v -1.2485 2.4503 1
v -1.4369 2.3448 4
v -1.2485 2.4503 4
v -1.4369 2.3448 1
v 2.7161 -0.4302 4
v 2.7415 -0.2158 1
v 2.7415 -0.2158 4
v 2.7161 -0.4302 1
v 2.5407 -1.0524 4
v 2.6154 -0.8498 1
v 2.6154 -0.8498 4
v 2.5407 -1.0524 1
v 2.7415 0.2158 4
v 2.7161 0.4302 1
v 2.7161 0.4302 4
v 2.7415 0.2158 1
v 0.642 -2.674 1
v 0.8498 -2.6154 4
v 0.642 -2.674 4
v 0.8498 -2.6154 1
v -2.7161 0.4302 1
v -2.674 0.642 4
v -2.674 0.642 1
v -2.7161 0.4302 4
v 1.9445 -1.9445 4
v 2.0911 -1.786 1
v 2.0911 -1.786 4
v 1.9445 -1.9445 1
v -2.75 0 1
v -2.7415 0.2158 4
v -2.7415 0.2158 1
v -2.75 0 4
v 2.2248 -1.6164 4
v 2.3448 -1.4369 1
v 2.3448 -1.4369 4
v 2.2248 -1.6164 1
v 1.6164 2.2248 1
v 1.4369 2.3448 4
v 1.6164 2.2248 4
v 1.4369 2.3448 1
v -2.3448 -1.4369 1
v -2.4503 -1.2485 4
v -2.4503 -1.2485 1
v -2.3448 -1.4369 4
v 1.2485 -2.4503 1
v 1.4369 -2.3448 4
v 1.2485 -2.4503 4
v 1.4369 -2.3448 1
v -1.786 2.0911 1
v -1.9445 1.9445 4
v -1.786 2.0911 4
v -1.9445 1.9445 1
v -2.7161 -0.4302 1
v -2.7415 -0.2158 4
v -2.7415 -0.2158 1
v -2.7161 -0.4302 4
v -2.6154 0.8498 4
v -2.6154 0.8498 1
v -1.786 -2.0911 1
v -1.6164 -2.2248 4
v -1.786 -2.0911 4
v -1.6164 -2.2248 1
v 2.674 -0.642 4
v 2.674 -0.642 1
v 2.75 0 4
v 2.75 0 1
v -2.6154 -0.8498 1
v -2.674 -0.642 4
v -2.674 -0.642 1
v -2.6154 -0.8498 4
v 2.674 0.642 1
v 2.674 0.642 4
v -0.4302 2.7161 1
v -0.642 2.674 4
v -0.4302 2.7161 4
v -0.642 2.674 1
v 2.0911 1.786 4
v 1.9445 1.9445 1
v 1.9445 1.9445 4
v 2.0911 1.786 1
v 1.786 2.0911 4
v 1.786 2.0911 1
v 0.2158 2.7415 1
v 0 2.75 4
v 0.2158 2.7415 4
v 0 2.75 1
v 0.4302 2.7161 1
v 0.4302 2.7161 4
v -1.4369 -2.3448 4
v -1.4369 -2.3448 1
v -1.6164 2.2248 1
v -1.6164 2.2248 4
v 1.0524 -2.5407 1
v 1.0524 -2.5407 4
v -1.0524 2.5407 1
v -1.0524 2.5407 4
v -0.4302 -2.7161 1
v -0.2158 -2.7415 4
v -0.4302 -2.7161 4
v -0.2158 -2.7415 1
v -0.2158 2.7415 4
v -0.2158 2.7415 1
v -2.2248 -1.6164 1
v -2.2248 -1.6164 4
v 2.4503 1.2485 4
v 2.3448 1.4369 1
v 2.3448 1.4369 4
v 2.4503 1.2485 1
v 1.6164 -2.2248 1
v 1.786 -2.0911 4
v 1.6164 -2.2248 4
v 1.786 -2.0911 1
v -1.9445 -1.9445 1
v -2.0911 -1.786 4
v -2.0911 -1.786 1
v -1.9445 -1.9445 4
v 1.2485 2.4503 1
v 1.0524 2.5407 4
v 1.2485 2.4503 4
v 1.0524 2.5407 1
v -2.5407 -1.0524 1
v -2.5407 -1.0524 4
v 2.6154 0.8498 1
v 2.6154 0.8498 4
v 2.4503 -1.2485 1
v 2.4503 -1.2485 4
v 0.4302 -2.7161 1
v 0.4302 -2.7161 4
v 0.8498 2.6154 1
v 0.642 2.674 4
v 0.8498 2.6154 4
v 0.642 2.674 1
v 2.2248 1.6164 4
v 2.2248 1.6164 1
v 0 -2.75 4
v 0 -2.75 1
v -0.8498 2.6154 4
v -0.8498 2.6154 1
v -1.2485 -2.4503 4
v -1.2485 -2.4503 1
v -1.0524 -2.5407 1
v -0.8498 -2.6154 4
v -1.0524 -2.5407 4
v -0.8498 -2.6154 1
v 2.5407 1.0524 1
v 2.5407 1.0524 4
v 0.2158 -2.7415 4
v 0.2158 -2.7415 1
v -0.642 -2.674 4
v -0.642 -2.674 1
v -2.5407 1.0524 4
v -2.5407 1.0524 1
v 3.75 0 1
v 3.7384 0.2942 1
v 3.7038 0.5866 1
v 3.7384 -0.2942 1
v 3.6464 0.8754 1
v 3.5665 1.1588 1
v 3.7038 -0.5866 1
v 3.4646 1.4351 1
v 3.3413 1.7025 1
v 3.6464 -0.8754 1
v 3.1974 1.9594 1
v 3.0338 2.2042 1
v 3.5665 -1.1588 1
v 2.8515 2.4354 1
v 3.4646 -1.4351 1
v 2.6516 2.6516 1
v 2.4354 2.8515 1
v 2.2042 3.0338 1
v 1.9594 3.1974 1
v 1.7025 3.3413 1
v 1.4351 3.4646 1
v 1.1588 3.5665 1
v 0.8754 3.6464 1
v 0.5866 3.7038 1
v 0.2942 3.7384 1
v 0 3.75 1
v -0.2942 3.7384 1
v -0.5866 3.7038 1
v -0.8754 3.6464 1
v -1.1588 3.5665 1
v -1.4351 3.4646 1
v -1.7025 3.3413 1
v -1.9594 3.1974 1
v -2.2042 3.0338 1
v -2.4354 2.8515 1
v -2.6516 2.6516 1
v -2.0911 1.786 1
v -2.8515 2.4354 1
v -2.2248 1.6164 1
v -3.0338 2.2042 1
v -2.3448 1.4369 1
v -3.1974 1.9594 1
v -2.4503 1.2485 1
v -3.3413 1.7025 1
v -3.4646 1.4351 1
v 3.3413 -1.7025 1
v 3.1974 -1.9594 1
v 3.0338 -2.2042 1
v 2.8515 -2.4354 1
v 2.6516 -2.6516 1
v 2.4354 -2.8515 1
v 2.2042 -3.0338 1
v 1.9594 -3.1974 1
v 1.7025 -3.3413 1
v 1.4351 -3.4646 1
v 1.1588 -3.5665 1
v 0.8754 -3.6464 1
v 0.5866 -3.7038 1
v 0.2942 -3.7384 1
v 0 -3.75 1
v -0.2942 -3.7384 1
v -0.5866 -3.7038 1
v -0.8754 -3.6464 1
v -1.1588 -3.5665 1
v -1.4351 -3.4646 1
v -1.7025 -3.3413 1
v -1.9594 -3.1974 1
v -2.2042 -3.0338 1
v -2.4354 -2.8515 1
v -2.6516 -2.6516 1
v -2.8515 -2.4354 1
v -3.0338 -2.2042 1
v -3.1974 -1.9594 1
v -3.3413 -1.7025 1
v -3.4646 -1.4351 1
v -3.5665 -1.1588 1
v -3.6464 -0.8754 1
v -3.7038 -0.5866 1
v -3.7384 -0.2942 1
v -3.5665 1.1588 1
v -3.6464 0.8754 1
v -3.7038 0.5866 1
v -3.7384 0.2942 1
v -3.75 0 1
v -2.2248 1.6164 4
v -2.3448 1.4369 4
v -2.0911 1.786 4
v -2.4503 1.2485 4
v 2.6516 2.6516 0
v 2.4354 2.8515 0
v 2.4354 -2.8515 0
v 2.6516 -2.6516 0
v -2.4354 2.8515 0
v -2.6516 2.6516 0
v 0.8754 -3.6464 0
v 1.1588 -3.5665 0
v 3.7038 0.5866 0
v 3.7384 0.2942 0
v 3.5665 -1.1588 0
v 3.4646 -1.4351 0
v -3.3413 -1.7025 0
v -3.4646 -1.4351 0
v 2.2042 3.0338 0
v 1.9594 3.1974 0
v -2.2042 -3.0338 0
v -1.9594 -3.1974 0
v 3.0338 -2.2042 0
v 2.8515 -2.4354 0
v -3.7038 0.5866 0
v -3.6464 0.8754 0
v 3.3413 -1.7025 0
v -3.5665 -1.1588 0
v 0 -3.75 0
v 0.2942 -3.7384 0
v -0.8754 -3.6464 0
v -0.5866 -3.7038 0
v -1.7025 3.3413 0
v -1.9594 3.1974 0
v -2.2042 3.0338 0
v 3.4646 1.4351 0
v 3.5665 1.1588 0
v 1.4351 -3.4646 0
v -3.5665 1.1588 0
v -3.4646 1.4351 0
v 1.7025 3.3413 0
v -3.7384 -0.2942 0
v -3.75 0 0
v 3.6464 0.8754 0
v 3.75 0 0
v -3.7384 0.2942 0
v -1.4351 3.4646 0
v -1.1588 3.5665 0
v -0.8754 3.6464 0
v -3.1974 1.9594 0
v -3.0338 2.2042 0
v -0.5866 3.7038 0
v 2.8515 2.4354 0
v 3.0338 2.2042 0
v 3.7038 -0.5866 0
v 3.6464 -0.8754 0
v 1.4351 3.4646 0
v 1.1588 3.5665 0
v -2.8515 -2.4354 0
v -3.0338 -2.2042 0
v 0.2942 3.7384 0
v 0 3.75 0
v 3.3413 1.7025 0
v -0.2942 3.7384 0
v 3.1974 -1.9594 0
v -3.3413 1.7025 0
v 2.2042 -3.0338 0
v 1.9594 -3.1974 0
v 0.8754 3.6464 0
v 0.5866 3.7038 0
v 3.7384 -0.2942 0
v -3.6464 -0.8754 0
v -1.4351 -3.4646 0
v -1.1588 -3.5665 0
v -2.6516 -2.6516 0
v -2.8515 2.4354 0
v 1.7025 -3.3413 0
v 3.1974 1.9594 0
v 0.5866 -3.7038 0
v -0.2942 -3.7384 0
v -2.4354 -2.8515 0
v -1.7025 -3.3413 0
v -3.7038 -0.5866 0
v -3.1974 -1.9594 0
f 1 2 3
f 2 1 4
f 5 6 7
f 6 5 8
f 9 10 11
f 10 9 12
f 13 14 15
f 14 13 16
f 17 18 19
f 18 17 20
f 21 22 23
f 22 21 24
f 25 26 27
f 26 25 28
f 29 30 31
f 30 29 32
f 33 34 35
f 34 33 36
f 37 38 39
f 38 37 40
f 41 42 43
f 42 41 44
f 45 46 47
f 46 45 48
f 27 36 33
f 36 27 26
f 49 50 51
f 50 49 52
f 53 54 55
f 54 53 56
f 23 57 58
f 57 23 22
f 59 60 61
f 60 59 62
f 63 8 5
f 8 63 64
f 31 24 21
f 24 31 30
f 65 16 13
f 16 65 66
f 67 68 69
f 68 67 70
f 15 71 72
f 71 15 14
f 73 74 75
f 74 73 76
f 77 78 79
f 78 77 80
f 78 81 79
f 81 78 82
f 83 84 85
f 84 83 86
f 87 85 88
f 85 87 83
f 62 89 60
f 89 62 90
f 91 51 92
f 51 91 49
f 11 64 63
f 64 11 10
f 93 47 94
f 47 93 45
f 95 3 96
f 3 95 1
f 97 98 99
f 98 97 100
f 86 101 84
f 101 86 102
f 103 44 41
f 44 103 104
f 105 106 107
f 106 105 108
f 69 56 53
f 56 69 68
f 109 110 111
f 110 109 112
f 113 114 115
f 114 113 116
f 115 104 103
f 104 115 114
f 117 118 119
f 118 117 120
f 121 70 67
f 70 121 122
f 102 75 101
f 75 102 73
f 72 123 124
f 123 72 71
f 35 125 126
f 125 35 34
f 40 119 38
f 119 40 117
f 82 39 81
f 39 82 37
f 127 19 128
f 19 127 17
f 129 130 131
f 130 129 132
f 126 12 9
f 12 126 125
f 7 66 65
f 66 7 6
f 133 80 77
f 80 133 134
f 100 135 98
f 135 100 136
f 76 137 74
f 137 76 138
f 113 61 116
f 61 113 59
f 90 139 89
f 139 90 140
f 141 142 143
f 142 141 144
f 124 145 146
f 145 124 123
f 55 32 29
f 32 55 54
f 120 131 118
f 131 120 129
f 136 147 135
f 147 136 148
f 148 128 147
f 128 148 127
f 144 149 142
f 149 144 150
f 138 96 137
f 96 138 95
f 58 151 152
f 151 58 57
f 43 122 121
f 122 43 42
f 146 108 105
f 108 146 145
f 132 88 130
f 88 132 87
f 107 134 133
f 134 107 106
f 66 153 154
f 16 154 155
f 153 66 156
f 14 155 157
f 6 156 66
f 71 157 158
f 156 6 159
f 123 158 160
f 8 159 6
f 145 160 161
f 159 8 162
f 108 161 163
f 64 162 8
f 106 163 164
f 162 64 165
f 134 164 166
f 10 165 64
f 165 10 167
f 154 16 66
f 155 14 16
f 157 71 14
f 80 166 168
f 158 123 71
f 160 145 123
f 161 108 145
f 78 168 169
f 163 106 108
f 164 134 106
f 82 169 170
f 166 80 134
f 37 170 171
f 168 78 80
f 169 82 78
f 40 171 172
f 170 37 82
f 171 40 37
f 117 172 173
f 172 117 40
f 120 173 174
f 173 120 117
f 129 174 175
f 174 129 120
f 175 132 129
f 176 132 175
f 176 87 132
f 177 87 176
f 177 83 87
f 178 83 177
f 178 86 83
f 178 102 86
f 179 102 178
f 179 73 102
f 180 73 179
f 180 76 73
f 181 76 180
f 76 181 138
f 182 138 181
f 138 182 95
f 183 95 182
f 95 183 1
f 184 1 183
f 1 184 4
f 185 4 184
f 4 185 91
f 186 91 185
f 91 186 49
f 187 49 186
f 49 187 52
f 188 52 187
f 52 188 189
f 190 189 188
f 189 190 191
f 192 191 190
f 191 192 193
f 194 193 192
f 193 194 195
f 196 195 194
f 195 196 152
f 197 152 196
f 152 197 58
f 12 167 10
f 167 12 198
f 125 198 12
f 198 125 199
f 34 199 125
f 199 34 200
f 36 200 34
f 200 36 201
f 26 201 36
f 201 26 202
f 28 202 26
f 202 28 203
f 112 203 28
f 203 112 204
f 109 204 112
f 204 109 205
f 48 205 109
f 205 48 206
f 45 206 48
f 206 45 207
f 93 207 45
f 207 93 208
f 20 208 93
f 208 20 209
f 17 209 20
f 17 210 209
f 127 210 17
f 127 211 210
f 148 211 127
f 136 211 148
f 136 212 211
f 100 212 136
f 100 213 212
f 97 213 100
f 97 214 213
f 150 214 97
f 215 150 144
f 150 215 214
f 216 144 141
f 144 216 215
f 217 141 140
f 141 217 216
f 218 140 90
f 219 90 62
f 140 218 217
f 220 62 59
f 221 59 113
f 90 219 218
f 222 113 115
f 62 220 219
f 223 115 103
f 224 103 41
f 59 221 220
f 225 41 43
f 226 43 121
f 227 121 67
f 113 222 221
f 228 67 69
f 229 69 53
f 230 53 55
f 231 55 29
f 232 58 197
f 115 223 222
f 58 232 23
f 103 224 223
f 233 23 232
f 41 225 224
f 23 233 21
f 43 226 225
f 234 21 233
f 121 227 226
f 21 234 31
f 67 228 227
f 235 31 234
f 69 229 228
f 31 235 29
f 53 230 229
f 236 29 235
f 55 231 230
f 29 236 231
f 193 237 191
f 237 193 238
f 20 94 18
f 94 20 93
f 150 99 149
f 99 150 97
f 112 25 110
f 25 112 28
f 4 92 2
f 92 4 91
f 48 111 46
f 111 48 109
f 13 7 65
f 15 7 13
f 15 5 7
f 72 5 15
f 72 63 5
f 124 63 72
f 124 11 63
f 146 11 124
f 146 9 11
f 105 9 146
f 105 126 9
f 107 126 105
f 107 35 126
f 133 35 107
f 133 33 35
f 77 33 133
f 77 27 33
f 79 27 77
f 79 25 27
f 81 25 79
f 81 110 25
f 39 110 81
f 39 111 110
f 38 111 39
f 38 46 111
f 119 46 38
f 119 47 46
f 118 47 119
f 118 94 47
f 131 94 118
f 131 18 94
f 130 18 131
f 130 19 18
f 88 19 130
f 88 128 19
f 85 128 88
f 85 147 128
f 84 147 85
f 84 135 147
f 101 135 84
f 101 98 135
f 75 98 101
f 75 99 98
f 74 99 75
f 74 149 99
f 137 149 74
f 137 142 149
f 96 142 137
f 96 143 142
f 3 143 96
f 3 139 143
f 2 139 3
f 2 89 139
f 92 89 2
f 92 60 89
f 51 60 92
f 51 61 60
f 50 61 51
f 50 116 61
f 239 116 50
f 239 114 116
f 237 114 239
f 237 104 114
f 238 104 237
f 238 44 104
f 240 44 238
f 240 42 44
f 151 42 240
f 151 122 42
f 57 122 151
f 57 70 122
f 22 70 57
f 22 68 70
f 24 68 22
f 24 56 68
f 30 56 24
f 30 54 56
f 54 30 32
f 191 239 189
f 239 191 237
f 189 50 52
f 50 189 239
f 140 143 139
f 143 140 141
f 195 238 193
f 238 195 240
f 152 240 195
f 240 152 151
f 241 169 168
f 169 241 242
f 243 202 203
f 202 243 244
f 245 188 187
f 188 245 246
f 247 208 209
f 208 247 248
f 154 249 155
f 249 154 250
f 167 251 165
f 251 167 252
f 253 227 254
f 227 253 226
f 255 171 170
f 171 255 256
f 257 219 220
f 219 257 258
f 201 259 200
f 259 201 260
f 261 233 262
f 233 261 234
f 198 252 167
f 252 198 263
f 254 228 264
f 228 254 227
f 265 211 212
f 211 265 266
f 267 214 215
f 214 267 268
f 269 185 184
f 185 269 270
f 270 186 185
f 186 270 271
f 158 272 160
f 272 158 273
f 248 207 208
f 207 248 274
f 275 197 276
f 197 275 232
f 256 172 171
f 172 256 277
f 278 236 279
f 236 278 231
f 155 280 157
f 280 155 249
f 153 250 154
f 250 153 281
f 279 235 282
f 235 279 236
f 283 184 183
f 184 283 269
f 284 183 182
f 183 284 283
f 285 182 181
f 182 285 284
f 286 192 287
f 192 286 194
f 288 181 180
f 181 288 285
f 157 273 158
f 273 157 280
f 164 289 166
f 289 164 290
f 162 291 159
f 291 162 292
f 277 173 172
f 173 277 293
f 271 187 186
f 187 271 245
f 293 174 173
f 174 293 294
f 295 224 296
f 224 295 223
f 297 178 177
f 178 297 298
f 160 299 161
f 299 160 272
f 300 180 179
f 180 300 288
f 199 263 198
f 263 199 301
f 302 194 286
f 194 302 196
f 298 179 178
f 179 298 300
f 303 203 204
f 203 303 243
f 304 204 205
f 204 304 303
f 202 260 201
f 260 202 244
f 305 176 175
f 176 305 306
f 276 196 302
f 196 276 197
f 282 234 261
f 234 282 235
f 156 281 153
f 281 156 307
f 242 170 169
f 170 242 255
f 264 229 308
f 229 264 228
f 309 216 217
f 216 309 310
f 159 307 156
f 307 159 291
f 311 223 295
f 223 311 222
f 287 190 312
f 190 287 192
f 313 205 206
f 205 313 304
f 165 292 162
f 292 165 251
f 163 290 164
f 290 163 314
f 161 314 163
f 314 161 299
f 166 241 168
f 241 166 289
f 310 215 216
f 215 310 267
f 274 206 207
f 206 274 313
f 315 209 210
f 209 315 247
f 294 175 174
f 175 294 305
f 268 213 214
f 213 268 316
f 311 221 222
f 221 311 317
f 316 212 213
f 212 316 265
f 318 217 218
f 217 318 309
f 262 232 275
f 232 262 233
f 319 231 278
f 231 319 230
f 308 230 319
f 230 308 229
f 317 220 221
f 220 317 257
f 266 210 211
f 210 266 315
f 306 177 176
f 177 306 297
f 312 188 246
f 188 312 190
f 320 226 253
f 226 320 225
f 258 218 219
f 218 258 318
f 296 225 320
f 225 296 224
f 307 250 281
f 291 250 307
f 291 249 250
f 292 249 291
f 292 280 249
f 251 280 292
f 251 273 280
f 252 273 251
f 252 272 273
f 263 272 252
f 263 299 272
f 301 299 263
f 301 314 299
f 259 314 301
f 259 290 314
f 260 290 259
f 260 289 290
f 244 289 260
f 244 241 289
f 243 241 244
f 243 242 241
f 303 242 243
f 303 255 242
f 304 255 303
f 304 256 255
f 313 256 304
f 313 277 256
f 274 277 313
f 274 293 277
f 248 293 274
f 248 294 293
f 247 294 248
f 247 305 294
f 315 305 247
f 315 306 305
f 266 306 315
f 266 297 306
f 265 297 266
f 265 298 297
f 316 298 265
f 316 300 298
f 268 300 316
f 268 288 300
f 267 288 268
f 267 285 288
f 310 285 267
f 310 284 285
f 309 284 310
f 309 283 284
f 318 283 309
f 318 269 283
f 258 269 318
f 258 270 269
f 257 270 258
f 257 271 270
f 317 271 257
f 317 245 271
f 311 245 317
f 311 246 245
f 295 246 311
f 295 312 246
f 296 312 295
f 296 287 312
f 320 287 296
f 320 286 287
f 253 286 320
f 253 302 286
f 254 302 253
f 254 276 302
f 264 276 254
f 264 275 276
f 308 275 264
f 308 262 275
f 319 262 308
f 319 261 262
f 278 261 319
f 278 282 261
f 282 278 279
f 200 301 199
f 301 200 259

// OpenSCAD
// file: ../configurations/global.scad
housing_facades_throws_diameter = 3.8;

// external size
case_external_x_size = 90;
case_external_y_size = 140;
case_external_z_size = 38;
case_external_panes_thickness = 4.8;

facade_front_round_edges_radius = 5;
facade_throws_margin = 5;

facade_front_fixation_throws_diameter = housing_facades_throws_diameter;

// facade corners
facade_corners_offset_lenght = 9;
facade_corners_main_x_size = 19;
facade_corners_main_y_size = 19;
facade_corners_main_thickness = 11;
facade_corners_correction_offset_length = 0.2;
facade_corners_correction_offset_thickness = 0.0;
facade_fn = 100;


facade_controller_coords = [
    case_external_x_size / 2,
    case_external_y_size / 2 - 30,
];


// Screen frames
screen_frame_electronic_board_margin = 3;
screen_frame_throw_diameter = 3.5;
screen_frame_piece_z_size = 1.5;
screen_frame_piece_glass_embedding_margin = 1;
screen_frame_piece_glass_embedding_z_depth = 1;
screen_frame_facade_piece_z_size = 1;
screen_frame_fn = 100;

screen_glass_visible_zone_x_margin = 0.7;
screen_glass_visible_zone_y_margin = 0.7;
screen_glass_z_size = 1;

facade_screen_coords = [
    case_external_x_size / 2,
    case_external_y_size / 2 + 28,
];


// Generics
insert_throw_diameter = 4.2;
insert_throw_length = 6 + 2;


// Controller facade
controller_breadboard_x_size_point = 28;
controller_breadboard_y_size_point = 9;

controller_facade_z_size = 2;
controller_facade_button_throw_margin = 1;
controller_facade_small_button_throw_margin = 0.5;
controller_facade_a_b_button_throw_margin = 0.5;

controller_facade_border_rounded_border_1 = 5;
controller_facade_border_rounded_border_2 = 4;

controller_facade_with_border_x_size = 82;
controller_facade_with_border_y_size = 47;

controller_facade_border_throws_margin = 5;
controller_braidboard_throw_margin = 1;

controller_facade_border_fn = 80;


// Cross Button
controller_cross_button_x_y_size = 20;
controller_cross_button_z_size = 4;
controller_cross_button_thickness = 6;
controller_cross_button_round_edges_radius = 1;
controller_cross_button_support_x_y_size = 22;
controller_cross_button_support_z_size = 1;
controller_cross_button_fn = 150;


// A and B Buttons
controller_a_b_button_diameter = 7.5;
controller_a_b_button_z_size = 4;
controller_a_b_button_support_diameter = 9.5;
controller_a_b_button_support_z_size = 1;
controller_a_b_button_fn = 80;


// small Buttons
controller_small_button_diameter = 5.5;
controller_small_button_z_size = 3;
controller_small_button_support_diameter = 7.5;
controller_small_button_support_z_size = 1;
controller_small_button_fn = 80;

// Directional cross
controller_directional_cross_points_coords = [6, 5];
controller_start_button_points_coords = [14, 3];
controller_select_button_points_coords = [18, 3];
controller_menu_button_points_coords = [14, 7];
controller_option_button_points_coords = [18, 7];
controller_a_button_points_coords = [23, 4];
controller_b_button_points_coords = [27, 6];
controller_bolt_throws_list = [
    [2, 2],
    [2, 8],
    [10, 2],
    [10, 8],
    [27, 2],
    [23, 8],
];


// usb charger holder
usb_charger_support_total_x_size = 17.57 + 15;
usb_charger_support_total_y_size = 12;
usb_charger_support_total_z_size = 2;


usb_charger_fixation_support_z_size = 4.5;
usb_charger_encaps_x_size = 17.57 + 1;
usb_charger_encaps_y_size = 27.85 + 1;
usb_charger_encaps_z_size = 1;

usb_charger_facade_x_fixation_spacing = 42;
usb_charger_facade_y_size = 1.36;
usb_charger_facade_z_size = 14;

usb_charger_throw_diameter = 3.5;
usb_charger_facade_holder_z_offset = 3.5; //
usb_charger_fixation_facade_y_margin = 0.5;
usb_charger_throw_offset_y = 4.5;
usb_charger_throw_offset_x = 3.5;
usb_charger_facade_fn = 100;

usb_charger_external_facade_main_throw_margin = 2;
usb_charger_external_facade_main_throw_diameter = housing_facades_throws_diameter;

usb_charger_coords = [
    28, 15
];


facade_top_on_off_button_throw_diameter = 12.8;

facade_top_on_off_button_coords = [
    case_external_x_size / 2 + 18,
    case_external_z_size / 2
];


// Bolt join Piece Mother board
bolt_join_mother_board_internal_diameter = 3.5;
bolt_join_mother_board_external_diameter = 3.5 + (0.4 * 6);
bolt_join_mother_board_height = 3;

// Bolt join Piece GamePadController
bolt_join_game_pad_internal_diameter = 3.5;
bolt_join_game_pad_external_diameter = 3.5 + (0.4 * 6);
bolt_join_game_pad_height = 6.5;

bolt_join_fn = 500;


// Mother board breadboard
mother_board_x_size_point = 25;
mother_board_y_size_point = 32;

mother_board_coords = [
    case_external_x_size / 2 - ((mother_board_x_size_point + 1) * 2.54) / 2,
    44,
    3
];

mother_board_bolt_throws_list = [
    [3, 2],
    [3, 17],
    [23, 2],
    [23, 17],
];


// Speaker
speaker_facade_throw_diameter = 28 + 1;
speaker_facade_z_size = 1.36;
speaker_facade_rounded_radius = 5;
// file: subpieces/round-button.scad
/**
 * roundButton
 * @name roundButton
 * @description Base method for creating buttons
 * @type Supbiece
 * @parent usbChargerComponent
 */
module roundButton(
    diameter,
    button_z_size,
    support_diameter,
    support_z_size,
    $fn = $fn
) {
    union() {
        translate([0, 0, support_z_size])
            cylinder(h = button_z_size, d = diameter, center = false, $fn = $fn);

        cylinder(h = support_z_size, d = support_diameter, center = false, $fn = $fn);
    }
}
// main file
use <./subpieces/round-button.scad>

include <../configurations/global.scad>

/**
 * smallButtonPiece
 * @name smallButtonPiece
 * @description Cross button of gamepad
 * @type piece
 * @parent gamePadComponent
 */
module smallButtonPiece(
    diameter = controller_small_button_diameter,
    button_z_size = controller_small_button_z_size,
    support_diameter = controller_small_button_support_diameter,
    support_z_size = controller_small_button_support_z_size,
    $fn = controller_small_button_fn
) {

    color("DarkSlateGray")
        roundButton(
            diameter,
            button_z_size,
            support_diameter,
            support_z_size,
            $fn = $fn
        );
}

/**
 * @stl
 * @png
 * @colorscheme BeforeDawn
 * @view axes,scales
 */
smallButtonPiece();
